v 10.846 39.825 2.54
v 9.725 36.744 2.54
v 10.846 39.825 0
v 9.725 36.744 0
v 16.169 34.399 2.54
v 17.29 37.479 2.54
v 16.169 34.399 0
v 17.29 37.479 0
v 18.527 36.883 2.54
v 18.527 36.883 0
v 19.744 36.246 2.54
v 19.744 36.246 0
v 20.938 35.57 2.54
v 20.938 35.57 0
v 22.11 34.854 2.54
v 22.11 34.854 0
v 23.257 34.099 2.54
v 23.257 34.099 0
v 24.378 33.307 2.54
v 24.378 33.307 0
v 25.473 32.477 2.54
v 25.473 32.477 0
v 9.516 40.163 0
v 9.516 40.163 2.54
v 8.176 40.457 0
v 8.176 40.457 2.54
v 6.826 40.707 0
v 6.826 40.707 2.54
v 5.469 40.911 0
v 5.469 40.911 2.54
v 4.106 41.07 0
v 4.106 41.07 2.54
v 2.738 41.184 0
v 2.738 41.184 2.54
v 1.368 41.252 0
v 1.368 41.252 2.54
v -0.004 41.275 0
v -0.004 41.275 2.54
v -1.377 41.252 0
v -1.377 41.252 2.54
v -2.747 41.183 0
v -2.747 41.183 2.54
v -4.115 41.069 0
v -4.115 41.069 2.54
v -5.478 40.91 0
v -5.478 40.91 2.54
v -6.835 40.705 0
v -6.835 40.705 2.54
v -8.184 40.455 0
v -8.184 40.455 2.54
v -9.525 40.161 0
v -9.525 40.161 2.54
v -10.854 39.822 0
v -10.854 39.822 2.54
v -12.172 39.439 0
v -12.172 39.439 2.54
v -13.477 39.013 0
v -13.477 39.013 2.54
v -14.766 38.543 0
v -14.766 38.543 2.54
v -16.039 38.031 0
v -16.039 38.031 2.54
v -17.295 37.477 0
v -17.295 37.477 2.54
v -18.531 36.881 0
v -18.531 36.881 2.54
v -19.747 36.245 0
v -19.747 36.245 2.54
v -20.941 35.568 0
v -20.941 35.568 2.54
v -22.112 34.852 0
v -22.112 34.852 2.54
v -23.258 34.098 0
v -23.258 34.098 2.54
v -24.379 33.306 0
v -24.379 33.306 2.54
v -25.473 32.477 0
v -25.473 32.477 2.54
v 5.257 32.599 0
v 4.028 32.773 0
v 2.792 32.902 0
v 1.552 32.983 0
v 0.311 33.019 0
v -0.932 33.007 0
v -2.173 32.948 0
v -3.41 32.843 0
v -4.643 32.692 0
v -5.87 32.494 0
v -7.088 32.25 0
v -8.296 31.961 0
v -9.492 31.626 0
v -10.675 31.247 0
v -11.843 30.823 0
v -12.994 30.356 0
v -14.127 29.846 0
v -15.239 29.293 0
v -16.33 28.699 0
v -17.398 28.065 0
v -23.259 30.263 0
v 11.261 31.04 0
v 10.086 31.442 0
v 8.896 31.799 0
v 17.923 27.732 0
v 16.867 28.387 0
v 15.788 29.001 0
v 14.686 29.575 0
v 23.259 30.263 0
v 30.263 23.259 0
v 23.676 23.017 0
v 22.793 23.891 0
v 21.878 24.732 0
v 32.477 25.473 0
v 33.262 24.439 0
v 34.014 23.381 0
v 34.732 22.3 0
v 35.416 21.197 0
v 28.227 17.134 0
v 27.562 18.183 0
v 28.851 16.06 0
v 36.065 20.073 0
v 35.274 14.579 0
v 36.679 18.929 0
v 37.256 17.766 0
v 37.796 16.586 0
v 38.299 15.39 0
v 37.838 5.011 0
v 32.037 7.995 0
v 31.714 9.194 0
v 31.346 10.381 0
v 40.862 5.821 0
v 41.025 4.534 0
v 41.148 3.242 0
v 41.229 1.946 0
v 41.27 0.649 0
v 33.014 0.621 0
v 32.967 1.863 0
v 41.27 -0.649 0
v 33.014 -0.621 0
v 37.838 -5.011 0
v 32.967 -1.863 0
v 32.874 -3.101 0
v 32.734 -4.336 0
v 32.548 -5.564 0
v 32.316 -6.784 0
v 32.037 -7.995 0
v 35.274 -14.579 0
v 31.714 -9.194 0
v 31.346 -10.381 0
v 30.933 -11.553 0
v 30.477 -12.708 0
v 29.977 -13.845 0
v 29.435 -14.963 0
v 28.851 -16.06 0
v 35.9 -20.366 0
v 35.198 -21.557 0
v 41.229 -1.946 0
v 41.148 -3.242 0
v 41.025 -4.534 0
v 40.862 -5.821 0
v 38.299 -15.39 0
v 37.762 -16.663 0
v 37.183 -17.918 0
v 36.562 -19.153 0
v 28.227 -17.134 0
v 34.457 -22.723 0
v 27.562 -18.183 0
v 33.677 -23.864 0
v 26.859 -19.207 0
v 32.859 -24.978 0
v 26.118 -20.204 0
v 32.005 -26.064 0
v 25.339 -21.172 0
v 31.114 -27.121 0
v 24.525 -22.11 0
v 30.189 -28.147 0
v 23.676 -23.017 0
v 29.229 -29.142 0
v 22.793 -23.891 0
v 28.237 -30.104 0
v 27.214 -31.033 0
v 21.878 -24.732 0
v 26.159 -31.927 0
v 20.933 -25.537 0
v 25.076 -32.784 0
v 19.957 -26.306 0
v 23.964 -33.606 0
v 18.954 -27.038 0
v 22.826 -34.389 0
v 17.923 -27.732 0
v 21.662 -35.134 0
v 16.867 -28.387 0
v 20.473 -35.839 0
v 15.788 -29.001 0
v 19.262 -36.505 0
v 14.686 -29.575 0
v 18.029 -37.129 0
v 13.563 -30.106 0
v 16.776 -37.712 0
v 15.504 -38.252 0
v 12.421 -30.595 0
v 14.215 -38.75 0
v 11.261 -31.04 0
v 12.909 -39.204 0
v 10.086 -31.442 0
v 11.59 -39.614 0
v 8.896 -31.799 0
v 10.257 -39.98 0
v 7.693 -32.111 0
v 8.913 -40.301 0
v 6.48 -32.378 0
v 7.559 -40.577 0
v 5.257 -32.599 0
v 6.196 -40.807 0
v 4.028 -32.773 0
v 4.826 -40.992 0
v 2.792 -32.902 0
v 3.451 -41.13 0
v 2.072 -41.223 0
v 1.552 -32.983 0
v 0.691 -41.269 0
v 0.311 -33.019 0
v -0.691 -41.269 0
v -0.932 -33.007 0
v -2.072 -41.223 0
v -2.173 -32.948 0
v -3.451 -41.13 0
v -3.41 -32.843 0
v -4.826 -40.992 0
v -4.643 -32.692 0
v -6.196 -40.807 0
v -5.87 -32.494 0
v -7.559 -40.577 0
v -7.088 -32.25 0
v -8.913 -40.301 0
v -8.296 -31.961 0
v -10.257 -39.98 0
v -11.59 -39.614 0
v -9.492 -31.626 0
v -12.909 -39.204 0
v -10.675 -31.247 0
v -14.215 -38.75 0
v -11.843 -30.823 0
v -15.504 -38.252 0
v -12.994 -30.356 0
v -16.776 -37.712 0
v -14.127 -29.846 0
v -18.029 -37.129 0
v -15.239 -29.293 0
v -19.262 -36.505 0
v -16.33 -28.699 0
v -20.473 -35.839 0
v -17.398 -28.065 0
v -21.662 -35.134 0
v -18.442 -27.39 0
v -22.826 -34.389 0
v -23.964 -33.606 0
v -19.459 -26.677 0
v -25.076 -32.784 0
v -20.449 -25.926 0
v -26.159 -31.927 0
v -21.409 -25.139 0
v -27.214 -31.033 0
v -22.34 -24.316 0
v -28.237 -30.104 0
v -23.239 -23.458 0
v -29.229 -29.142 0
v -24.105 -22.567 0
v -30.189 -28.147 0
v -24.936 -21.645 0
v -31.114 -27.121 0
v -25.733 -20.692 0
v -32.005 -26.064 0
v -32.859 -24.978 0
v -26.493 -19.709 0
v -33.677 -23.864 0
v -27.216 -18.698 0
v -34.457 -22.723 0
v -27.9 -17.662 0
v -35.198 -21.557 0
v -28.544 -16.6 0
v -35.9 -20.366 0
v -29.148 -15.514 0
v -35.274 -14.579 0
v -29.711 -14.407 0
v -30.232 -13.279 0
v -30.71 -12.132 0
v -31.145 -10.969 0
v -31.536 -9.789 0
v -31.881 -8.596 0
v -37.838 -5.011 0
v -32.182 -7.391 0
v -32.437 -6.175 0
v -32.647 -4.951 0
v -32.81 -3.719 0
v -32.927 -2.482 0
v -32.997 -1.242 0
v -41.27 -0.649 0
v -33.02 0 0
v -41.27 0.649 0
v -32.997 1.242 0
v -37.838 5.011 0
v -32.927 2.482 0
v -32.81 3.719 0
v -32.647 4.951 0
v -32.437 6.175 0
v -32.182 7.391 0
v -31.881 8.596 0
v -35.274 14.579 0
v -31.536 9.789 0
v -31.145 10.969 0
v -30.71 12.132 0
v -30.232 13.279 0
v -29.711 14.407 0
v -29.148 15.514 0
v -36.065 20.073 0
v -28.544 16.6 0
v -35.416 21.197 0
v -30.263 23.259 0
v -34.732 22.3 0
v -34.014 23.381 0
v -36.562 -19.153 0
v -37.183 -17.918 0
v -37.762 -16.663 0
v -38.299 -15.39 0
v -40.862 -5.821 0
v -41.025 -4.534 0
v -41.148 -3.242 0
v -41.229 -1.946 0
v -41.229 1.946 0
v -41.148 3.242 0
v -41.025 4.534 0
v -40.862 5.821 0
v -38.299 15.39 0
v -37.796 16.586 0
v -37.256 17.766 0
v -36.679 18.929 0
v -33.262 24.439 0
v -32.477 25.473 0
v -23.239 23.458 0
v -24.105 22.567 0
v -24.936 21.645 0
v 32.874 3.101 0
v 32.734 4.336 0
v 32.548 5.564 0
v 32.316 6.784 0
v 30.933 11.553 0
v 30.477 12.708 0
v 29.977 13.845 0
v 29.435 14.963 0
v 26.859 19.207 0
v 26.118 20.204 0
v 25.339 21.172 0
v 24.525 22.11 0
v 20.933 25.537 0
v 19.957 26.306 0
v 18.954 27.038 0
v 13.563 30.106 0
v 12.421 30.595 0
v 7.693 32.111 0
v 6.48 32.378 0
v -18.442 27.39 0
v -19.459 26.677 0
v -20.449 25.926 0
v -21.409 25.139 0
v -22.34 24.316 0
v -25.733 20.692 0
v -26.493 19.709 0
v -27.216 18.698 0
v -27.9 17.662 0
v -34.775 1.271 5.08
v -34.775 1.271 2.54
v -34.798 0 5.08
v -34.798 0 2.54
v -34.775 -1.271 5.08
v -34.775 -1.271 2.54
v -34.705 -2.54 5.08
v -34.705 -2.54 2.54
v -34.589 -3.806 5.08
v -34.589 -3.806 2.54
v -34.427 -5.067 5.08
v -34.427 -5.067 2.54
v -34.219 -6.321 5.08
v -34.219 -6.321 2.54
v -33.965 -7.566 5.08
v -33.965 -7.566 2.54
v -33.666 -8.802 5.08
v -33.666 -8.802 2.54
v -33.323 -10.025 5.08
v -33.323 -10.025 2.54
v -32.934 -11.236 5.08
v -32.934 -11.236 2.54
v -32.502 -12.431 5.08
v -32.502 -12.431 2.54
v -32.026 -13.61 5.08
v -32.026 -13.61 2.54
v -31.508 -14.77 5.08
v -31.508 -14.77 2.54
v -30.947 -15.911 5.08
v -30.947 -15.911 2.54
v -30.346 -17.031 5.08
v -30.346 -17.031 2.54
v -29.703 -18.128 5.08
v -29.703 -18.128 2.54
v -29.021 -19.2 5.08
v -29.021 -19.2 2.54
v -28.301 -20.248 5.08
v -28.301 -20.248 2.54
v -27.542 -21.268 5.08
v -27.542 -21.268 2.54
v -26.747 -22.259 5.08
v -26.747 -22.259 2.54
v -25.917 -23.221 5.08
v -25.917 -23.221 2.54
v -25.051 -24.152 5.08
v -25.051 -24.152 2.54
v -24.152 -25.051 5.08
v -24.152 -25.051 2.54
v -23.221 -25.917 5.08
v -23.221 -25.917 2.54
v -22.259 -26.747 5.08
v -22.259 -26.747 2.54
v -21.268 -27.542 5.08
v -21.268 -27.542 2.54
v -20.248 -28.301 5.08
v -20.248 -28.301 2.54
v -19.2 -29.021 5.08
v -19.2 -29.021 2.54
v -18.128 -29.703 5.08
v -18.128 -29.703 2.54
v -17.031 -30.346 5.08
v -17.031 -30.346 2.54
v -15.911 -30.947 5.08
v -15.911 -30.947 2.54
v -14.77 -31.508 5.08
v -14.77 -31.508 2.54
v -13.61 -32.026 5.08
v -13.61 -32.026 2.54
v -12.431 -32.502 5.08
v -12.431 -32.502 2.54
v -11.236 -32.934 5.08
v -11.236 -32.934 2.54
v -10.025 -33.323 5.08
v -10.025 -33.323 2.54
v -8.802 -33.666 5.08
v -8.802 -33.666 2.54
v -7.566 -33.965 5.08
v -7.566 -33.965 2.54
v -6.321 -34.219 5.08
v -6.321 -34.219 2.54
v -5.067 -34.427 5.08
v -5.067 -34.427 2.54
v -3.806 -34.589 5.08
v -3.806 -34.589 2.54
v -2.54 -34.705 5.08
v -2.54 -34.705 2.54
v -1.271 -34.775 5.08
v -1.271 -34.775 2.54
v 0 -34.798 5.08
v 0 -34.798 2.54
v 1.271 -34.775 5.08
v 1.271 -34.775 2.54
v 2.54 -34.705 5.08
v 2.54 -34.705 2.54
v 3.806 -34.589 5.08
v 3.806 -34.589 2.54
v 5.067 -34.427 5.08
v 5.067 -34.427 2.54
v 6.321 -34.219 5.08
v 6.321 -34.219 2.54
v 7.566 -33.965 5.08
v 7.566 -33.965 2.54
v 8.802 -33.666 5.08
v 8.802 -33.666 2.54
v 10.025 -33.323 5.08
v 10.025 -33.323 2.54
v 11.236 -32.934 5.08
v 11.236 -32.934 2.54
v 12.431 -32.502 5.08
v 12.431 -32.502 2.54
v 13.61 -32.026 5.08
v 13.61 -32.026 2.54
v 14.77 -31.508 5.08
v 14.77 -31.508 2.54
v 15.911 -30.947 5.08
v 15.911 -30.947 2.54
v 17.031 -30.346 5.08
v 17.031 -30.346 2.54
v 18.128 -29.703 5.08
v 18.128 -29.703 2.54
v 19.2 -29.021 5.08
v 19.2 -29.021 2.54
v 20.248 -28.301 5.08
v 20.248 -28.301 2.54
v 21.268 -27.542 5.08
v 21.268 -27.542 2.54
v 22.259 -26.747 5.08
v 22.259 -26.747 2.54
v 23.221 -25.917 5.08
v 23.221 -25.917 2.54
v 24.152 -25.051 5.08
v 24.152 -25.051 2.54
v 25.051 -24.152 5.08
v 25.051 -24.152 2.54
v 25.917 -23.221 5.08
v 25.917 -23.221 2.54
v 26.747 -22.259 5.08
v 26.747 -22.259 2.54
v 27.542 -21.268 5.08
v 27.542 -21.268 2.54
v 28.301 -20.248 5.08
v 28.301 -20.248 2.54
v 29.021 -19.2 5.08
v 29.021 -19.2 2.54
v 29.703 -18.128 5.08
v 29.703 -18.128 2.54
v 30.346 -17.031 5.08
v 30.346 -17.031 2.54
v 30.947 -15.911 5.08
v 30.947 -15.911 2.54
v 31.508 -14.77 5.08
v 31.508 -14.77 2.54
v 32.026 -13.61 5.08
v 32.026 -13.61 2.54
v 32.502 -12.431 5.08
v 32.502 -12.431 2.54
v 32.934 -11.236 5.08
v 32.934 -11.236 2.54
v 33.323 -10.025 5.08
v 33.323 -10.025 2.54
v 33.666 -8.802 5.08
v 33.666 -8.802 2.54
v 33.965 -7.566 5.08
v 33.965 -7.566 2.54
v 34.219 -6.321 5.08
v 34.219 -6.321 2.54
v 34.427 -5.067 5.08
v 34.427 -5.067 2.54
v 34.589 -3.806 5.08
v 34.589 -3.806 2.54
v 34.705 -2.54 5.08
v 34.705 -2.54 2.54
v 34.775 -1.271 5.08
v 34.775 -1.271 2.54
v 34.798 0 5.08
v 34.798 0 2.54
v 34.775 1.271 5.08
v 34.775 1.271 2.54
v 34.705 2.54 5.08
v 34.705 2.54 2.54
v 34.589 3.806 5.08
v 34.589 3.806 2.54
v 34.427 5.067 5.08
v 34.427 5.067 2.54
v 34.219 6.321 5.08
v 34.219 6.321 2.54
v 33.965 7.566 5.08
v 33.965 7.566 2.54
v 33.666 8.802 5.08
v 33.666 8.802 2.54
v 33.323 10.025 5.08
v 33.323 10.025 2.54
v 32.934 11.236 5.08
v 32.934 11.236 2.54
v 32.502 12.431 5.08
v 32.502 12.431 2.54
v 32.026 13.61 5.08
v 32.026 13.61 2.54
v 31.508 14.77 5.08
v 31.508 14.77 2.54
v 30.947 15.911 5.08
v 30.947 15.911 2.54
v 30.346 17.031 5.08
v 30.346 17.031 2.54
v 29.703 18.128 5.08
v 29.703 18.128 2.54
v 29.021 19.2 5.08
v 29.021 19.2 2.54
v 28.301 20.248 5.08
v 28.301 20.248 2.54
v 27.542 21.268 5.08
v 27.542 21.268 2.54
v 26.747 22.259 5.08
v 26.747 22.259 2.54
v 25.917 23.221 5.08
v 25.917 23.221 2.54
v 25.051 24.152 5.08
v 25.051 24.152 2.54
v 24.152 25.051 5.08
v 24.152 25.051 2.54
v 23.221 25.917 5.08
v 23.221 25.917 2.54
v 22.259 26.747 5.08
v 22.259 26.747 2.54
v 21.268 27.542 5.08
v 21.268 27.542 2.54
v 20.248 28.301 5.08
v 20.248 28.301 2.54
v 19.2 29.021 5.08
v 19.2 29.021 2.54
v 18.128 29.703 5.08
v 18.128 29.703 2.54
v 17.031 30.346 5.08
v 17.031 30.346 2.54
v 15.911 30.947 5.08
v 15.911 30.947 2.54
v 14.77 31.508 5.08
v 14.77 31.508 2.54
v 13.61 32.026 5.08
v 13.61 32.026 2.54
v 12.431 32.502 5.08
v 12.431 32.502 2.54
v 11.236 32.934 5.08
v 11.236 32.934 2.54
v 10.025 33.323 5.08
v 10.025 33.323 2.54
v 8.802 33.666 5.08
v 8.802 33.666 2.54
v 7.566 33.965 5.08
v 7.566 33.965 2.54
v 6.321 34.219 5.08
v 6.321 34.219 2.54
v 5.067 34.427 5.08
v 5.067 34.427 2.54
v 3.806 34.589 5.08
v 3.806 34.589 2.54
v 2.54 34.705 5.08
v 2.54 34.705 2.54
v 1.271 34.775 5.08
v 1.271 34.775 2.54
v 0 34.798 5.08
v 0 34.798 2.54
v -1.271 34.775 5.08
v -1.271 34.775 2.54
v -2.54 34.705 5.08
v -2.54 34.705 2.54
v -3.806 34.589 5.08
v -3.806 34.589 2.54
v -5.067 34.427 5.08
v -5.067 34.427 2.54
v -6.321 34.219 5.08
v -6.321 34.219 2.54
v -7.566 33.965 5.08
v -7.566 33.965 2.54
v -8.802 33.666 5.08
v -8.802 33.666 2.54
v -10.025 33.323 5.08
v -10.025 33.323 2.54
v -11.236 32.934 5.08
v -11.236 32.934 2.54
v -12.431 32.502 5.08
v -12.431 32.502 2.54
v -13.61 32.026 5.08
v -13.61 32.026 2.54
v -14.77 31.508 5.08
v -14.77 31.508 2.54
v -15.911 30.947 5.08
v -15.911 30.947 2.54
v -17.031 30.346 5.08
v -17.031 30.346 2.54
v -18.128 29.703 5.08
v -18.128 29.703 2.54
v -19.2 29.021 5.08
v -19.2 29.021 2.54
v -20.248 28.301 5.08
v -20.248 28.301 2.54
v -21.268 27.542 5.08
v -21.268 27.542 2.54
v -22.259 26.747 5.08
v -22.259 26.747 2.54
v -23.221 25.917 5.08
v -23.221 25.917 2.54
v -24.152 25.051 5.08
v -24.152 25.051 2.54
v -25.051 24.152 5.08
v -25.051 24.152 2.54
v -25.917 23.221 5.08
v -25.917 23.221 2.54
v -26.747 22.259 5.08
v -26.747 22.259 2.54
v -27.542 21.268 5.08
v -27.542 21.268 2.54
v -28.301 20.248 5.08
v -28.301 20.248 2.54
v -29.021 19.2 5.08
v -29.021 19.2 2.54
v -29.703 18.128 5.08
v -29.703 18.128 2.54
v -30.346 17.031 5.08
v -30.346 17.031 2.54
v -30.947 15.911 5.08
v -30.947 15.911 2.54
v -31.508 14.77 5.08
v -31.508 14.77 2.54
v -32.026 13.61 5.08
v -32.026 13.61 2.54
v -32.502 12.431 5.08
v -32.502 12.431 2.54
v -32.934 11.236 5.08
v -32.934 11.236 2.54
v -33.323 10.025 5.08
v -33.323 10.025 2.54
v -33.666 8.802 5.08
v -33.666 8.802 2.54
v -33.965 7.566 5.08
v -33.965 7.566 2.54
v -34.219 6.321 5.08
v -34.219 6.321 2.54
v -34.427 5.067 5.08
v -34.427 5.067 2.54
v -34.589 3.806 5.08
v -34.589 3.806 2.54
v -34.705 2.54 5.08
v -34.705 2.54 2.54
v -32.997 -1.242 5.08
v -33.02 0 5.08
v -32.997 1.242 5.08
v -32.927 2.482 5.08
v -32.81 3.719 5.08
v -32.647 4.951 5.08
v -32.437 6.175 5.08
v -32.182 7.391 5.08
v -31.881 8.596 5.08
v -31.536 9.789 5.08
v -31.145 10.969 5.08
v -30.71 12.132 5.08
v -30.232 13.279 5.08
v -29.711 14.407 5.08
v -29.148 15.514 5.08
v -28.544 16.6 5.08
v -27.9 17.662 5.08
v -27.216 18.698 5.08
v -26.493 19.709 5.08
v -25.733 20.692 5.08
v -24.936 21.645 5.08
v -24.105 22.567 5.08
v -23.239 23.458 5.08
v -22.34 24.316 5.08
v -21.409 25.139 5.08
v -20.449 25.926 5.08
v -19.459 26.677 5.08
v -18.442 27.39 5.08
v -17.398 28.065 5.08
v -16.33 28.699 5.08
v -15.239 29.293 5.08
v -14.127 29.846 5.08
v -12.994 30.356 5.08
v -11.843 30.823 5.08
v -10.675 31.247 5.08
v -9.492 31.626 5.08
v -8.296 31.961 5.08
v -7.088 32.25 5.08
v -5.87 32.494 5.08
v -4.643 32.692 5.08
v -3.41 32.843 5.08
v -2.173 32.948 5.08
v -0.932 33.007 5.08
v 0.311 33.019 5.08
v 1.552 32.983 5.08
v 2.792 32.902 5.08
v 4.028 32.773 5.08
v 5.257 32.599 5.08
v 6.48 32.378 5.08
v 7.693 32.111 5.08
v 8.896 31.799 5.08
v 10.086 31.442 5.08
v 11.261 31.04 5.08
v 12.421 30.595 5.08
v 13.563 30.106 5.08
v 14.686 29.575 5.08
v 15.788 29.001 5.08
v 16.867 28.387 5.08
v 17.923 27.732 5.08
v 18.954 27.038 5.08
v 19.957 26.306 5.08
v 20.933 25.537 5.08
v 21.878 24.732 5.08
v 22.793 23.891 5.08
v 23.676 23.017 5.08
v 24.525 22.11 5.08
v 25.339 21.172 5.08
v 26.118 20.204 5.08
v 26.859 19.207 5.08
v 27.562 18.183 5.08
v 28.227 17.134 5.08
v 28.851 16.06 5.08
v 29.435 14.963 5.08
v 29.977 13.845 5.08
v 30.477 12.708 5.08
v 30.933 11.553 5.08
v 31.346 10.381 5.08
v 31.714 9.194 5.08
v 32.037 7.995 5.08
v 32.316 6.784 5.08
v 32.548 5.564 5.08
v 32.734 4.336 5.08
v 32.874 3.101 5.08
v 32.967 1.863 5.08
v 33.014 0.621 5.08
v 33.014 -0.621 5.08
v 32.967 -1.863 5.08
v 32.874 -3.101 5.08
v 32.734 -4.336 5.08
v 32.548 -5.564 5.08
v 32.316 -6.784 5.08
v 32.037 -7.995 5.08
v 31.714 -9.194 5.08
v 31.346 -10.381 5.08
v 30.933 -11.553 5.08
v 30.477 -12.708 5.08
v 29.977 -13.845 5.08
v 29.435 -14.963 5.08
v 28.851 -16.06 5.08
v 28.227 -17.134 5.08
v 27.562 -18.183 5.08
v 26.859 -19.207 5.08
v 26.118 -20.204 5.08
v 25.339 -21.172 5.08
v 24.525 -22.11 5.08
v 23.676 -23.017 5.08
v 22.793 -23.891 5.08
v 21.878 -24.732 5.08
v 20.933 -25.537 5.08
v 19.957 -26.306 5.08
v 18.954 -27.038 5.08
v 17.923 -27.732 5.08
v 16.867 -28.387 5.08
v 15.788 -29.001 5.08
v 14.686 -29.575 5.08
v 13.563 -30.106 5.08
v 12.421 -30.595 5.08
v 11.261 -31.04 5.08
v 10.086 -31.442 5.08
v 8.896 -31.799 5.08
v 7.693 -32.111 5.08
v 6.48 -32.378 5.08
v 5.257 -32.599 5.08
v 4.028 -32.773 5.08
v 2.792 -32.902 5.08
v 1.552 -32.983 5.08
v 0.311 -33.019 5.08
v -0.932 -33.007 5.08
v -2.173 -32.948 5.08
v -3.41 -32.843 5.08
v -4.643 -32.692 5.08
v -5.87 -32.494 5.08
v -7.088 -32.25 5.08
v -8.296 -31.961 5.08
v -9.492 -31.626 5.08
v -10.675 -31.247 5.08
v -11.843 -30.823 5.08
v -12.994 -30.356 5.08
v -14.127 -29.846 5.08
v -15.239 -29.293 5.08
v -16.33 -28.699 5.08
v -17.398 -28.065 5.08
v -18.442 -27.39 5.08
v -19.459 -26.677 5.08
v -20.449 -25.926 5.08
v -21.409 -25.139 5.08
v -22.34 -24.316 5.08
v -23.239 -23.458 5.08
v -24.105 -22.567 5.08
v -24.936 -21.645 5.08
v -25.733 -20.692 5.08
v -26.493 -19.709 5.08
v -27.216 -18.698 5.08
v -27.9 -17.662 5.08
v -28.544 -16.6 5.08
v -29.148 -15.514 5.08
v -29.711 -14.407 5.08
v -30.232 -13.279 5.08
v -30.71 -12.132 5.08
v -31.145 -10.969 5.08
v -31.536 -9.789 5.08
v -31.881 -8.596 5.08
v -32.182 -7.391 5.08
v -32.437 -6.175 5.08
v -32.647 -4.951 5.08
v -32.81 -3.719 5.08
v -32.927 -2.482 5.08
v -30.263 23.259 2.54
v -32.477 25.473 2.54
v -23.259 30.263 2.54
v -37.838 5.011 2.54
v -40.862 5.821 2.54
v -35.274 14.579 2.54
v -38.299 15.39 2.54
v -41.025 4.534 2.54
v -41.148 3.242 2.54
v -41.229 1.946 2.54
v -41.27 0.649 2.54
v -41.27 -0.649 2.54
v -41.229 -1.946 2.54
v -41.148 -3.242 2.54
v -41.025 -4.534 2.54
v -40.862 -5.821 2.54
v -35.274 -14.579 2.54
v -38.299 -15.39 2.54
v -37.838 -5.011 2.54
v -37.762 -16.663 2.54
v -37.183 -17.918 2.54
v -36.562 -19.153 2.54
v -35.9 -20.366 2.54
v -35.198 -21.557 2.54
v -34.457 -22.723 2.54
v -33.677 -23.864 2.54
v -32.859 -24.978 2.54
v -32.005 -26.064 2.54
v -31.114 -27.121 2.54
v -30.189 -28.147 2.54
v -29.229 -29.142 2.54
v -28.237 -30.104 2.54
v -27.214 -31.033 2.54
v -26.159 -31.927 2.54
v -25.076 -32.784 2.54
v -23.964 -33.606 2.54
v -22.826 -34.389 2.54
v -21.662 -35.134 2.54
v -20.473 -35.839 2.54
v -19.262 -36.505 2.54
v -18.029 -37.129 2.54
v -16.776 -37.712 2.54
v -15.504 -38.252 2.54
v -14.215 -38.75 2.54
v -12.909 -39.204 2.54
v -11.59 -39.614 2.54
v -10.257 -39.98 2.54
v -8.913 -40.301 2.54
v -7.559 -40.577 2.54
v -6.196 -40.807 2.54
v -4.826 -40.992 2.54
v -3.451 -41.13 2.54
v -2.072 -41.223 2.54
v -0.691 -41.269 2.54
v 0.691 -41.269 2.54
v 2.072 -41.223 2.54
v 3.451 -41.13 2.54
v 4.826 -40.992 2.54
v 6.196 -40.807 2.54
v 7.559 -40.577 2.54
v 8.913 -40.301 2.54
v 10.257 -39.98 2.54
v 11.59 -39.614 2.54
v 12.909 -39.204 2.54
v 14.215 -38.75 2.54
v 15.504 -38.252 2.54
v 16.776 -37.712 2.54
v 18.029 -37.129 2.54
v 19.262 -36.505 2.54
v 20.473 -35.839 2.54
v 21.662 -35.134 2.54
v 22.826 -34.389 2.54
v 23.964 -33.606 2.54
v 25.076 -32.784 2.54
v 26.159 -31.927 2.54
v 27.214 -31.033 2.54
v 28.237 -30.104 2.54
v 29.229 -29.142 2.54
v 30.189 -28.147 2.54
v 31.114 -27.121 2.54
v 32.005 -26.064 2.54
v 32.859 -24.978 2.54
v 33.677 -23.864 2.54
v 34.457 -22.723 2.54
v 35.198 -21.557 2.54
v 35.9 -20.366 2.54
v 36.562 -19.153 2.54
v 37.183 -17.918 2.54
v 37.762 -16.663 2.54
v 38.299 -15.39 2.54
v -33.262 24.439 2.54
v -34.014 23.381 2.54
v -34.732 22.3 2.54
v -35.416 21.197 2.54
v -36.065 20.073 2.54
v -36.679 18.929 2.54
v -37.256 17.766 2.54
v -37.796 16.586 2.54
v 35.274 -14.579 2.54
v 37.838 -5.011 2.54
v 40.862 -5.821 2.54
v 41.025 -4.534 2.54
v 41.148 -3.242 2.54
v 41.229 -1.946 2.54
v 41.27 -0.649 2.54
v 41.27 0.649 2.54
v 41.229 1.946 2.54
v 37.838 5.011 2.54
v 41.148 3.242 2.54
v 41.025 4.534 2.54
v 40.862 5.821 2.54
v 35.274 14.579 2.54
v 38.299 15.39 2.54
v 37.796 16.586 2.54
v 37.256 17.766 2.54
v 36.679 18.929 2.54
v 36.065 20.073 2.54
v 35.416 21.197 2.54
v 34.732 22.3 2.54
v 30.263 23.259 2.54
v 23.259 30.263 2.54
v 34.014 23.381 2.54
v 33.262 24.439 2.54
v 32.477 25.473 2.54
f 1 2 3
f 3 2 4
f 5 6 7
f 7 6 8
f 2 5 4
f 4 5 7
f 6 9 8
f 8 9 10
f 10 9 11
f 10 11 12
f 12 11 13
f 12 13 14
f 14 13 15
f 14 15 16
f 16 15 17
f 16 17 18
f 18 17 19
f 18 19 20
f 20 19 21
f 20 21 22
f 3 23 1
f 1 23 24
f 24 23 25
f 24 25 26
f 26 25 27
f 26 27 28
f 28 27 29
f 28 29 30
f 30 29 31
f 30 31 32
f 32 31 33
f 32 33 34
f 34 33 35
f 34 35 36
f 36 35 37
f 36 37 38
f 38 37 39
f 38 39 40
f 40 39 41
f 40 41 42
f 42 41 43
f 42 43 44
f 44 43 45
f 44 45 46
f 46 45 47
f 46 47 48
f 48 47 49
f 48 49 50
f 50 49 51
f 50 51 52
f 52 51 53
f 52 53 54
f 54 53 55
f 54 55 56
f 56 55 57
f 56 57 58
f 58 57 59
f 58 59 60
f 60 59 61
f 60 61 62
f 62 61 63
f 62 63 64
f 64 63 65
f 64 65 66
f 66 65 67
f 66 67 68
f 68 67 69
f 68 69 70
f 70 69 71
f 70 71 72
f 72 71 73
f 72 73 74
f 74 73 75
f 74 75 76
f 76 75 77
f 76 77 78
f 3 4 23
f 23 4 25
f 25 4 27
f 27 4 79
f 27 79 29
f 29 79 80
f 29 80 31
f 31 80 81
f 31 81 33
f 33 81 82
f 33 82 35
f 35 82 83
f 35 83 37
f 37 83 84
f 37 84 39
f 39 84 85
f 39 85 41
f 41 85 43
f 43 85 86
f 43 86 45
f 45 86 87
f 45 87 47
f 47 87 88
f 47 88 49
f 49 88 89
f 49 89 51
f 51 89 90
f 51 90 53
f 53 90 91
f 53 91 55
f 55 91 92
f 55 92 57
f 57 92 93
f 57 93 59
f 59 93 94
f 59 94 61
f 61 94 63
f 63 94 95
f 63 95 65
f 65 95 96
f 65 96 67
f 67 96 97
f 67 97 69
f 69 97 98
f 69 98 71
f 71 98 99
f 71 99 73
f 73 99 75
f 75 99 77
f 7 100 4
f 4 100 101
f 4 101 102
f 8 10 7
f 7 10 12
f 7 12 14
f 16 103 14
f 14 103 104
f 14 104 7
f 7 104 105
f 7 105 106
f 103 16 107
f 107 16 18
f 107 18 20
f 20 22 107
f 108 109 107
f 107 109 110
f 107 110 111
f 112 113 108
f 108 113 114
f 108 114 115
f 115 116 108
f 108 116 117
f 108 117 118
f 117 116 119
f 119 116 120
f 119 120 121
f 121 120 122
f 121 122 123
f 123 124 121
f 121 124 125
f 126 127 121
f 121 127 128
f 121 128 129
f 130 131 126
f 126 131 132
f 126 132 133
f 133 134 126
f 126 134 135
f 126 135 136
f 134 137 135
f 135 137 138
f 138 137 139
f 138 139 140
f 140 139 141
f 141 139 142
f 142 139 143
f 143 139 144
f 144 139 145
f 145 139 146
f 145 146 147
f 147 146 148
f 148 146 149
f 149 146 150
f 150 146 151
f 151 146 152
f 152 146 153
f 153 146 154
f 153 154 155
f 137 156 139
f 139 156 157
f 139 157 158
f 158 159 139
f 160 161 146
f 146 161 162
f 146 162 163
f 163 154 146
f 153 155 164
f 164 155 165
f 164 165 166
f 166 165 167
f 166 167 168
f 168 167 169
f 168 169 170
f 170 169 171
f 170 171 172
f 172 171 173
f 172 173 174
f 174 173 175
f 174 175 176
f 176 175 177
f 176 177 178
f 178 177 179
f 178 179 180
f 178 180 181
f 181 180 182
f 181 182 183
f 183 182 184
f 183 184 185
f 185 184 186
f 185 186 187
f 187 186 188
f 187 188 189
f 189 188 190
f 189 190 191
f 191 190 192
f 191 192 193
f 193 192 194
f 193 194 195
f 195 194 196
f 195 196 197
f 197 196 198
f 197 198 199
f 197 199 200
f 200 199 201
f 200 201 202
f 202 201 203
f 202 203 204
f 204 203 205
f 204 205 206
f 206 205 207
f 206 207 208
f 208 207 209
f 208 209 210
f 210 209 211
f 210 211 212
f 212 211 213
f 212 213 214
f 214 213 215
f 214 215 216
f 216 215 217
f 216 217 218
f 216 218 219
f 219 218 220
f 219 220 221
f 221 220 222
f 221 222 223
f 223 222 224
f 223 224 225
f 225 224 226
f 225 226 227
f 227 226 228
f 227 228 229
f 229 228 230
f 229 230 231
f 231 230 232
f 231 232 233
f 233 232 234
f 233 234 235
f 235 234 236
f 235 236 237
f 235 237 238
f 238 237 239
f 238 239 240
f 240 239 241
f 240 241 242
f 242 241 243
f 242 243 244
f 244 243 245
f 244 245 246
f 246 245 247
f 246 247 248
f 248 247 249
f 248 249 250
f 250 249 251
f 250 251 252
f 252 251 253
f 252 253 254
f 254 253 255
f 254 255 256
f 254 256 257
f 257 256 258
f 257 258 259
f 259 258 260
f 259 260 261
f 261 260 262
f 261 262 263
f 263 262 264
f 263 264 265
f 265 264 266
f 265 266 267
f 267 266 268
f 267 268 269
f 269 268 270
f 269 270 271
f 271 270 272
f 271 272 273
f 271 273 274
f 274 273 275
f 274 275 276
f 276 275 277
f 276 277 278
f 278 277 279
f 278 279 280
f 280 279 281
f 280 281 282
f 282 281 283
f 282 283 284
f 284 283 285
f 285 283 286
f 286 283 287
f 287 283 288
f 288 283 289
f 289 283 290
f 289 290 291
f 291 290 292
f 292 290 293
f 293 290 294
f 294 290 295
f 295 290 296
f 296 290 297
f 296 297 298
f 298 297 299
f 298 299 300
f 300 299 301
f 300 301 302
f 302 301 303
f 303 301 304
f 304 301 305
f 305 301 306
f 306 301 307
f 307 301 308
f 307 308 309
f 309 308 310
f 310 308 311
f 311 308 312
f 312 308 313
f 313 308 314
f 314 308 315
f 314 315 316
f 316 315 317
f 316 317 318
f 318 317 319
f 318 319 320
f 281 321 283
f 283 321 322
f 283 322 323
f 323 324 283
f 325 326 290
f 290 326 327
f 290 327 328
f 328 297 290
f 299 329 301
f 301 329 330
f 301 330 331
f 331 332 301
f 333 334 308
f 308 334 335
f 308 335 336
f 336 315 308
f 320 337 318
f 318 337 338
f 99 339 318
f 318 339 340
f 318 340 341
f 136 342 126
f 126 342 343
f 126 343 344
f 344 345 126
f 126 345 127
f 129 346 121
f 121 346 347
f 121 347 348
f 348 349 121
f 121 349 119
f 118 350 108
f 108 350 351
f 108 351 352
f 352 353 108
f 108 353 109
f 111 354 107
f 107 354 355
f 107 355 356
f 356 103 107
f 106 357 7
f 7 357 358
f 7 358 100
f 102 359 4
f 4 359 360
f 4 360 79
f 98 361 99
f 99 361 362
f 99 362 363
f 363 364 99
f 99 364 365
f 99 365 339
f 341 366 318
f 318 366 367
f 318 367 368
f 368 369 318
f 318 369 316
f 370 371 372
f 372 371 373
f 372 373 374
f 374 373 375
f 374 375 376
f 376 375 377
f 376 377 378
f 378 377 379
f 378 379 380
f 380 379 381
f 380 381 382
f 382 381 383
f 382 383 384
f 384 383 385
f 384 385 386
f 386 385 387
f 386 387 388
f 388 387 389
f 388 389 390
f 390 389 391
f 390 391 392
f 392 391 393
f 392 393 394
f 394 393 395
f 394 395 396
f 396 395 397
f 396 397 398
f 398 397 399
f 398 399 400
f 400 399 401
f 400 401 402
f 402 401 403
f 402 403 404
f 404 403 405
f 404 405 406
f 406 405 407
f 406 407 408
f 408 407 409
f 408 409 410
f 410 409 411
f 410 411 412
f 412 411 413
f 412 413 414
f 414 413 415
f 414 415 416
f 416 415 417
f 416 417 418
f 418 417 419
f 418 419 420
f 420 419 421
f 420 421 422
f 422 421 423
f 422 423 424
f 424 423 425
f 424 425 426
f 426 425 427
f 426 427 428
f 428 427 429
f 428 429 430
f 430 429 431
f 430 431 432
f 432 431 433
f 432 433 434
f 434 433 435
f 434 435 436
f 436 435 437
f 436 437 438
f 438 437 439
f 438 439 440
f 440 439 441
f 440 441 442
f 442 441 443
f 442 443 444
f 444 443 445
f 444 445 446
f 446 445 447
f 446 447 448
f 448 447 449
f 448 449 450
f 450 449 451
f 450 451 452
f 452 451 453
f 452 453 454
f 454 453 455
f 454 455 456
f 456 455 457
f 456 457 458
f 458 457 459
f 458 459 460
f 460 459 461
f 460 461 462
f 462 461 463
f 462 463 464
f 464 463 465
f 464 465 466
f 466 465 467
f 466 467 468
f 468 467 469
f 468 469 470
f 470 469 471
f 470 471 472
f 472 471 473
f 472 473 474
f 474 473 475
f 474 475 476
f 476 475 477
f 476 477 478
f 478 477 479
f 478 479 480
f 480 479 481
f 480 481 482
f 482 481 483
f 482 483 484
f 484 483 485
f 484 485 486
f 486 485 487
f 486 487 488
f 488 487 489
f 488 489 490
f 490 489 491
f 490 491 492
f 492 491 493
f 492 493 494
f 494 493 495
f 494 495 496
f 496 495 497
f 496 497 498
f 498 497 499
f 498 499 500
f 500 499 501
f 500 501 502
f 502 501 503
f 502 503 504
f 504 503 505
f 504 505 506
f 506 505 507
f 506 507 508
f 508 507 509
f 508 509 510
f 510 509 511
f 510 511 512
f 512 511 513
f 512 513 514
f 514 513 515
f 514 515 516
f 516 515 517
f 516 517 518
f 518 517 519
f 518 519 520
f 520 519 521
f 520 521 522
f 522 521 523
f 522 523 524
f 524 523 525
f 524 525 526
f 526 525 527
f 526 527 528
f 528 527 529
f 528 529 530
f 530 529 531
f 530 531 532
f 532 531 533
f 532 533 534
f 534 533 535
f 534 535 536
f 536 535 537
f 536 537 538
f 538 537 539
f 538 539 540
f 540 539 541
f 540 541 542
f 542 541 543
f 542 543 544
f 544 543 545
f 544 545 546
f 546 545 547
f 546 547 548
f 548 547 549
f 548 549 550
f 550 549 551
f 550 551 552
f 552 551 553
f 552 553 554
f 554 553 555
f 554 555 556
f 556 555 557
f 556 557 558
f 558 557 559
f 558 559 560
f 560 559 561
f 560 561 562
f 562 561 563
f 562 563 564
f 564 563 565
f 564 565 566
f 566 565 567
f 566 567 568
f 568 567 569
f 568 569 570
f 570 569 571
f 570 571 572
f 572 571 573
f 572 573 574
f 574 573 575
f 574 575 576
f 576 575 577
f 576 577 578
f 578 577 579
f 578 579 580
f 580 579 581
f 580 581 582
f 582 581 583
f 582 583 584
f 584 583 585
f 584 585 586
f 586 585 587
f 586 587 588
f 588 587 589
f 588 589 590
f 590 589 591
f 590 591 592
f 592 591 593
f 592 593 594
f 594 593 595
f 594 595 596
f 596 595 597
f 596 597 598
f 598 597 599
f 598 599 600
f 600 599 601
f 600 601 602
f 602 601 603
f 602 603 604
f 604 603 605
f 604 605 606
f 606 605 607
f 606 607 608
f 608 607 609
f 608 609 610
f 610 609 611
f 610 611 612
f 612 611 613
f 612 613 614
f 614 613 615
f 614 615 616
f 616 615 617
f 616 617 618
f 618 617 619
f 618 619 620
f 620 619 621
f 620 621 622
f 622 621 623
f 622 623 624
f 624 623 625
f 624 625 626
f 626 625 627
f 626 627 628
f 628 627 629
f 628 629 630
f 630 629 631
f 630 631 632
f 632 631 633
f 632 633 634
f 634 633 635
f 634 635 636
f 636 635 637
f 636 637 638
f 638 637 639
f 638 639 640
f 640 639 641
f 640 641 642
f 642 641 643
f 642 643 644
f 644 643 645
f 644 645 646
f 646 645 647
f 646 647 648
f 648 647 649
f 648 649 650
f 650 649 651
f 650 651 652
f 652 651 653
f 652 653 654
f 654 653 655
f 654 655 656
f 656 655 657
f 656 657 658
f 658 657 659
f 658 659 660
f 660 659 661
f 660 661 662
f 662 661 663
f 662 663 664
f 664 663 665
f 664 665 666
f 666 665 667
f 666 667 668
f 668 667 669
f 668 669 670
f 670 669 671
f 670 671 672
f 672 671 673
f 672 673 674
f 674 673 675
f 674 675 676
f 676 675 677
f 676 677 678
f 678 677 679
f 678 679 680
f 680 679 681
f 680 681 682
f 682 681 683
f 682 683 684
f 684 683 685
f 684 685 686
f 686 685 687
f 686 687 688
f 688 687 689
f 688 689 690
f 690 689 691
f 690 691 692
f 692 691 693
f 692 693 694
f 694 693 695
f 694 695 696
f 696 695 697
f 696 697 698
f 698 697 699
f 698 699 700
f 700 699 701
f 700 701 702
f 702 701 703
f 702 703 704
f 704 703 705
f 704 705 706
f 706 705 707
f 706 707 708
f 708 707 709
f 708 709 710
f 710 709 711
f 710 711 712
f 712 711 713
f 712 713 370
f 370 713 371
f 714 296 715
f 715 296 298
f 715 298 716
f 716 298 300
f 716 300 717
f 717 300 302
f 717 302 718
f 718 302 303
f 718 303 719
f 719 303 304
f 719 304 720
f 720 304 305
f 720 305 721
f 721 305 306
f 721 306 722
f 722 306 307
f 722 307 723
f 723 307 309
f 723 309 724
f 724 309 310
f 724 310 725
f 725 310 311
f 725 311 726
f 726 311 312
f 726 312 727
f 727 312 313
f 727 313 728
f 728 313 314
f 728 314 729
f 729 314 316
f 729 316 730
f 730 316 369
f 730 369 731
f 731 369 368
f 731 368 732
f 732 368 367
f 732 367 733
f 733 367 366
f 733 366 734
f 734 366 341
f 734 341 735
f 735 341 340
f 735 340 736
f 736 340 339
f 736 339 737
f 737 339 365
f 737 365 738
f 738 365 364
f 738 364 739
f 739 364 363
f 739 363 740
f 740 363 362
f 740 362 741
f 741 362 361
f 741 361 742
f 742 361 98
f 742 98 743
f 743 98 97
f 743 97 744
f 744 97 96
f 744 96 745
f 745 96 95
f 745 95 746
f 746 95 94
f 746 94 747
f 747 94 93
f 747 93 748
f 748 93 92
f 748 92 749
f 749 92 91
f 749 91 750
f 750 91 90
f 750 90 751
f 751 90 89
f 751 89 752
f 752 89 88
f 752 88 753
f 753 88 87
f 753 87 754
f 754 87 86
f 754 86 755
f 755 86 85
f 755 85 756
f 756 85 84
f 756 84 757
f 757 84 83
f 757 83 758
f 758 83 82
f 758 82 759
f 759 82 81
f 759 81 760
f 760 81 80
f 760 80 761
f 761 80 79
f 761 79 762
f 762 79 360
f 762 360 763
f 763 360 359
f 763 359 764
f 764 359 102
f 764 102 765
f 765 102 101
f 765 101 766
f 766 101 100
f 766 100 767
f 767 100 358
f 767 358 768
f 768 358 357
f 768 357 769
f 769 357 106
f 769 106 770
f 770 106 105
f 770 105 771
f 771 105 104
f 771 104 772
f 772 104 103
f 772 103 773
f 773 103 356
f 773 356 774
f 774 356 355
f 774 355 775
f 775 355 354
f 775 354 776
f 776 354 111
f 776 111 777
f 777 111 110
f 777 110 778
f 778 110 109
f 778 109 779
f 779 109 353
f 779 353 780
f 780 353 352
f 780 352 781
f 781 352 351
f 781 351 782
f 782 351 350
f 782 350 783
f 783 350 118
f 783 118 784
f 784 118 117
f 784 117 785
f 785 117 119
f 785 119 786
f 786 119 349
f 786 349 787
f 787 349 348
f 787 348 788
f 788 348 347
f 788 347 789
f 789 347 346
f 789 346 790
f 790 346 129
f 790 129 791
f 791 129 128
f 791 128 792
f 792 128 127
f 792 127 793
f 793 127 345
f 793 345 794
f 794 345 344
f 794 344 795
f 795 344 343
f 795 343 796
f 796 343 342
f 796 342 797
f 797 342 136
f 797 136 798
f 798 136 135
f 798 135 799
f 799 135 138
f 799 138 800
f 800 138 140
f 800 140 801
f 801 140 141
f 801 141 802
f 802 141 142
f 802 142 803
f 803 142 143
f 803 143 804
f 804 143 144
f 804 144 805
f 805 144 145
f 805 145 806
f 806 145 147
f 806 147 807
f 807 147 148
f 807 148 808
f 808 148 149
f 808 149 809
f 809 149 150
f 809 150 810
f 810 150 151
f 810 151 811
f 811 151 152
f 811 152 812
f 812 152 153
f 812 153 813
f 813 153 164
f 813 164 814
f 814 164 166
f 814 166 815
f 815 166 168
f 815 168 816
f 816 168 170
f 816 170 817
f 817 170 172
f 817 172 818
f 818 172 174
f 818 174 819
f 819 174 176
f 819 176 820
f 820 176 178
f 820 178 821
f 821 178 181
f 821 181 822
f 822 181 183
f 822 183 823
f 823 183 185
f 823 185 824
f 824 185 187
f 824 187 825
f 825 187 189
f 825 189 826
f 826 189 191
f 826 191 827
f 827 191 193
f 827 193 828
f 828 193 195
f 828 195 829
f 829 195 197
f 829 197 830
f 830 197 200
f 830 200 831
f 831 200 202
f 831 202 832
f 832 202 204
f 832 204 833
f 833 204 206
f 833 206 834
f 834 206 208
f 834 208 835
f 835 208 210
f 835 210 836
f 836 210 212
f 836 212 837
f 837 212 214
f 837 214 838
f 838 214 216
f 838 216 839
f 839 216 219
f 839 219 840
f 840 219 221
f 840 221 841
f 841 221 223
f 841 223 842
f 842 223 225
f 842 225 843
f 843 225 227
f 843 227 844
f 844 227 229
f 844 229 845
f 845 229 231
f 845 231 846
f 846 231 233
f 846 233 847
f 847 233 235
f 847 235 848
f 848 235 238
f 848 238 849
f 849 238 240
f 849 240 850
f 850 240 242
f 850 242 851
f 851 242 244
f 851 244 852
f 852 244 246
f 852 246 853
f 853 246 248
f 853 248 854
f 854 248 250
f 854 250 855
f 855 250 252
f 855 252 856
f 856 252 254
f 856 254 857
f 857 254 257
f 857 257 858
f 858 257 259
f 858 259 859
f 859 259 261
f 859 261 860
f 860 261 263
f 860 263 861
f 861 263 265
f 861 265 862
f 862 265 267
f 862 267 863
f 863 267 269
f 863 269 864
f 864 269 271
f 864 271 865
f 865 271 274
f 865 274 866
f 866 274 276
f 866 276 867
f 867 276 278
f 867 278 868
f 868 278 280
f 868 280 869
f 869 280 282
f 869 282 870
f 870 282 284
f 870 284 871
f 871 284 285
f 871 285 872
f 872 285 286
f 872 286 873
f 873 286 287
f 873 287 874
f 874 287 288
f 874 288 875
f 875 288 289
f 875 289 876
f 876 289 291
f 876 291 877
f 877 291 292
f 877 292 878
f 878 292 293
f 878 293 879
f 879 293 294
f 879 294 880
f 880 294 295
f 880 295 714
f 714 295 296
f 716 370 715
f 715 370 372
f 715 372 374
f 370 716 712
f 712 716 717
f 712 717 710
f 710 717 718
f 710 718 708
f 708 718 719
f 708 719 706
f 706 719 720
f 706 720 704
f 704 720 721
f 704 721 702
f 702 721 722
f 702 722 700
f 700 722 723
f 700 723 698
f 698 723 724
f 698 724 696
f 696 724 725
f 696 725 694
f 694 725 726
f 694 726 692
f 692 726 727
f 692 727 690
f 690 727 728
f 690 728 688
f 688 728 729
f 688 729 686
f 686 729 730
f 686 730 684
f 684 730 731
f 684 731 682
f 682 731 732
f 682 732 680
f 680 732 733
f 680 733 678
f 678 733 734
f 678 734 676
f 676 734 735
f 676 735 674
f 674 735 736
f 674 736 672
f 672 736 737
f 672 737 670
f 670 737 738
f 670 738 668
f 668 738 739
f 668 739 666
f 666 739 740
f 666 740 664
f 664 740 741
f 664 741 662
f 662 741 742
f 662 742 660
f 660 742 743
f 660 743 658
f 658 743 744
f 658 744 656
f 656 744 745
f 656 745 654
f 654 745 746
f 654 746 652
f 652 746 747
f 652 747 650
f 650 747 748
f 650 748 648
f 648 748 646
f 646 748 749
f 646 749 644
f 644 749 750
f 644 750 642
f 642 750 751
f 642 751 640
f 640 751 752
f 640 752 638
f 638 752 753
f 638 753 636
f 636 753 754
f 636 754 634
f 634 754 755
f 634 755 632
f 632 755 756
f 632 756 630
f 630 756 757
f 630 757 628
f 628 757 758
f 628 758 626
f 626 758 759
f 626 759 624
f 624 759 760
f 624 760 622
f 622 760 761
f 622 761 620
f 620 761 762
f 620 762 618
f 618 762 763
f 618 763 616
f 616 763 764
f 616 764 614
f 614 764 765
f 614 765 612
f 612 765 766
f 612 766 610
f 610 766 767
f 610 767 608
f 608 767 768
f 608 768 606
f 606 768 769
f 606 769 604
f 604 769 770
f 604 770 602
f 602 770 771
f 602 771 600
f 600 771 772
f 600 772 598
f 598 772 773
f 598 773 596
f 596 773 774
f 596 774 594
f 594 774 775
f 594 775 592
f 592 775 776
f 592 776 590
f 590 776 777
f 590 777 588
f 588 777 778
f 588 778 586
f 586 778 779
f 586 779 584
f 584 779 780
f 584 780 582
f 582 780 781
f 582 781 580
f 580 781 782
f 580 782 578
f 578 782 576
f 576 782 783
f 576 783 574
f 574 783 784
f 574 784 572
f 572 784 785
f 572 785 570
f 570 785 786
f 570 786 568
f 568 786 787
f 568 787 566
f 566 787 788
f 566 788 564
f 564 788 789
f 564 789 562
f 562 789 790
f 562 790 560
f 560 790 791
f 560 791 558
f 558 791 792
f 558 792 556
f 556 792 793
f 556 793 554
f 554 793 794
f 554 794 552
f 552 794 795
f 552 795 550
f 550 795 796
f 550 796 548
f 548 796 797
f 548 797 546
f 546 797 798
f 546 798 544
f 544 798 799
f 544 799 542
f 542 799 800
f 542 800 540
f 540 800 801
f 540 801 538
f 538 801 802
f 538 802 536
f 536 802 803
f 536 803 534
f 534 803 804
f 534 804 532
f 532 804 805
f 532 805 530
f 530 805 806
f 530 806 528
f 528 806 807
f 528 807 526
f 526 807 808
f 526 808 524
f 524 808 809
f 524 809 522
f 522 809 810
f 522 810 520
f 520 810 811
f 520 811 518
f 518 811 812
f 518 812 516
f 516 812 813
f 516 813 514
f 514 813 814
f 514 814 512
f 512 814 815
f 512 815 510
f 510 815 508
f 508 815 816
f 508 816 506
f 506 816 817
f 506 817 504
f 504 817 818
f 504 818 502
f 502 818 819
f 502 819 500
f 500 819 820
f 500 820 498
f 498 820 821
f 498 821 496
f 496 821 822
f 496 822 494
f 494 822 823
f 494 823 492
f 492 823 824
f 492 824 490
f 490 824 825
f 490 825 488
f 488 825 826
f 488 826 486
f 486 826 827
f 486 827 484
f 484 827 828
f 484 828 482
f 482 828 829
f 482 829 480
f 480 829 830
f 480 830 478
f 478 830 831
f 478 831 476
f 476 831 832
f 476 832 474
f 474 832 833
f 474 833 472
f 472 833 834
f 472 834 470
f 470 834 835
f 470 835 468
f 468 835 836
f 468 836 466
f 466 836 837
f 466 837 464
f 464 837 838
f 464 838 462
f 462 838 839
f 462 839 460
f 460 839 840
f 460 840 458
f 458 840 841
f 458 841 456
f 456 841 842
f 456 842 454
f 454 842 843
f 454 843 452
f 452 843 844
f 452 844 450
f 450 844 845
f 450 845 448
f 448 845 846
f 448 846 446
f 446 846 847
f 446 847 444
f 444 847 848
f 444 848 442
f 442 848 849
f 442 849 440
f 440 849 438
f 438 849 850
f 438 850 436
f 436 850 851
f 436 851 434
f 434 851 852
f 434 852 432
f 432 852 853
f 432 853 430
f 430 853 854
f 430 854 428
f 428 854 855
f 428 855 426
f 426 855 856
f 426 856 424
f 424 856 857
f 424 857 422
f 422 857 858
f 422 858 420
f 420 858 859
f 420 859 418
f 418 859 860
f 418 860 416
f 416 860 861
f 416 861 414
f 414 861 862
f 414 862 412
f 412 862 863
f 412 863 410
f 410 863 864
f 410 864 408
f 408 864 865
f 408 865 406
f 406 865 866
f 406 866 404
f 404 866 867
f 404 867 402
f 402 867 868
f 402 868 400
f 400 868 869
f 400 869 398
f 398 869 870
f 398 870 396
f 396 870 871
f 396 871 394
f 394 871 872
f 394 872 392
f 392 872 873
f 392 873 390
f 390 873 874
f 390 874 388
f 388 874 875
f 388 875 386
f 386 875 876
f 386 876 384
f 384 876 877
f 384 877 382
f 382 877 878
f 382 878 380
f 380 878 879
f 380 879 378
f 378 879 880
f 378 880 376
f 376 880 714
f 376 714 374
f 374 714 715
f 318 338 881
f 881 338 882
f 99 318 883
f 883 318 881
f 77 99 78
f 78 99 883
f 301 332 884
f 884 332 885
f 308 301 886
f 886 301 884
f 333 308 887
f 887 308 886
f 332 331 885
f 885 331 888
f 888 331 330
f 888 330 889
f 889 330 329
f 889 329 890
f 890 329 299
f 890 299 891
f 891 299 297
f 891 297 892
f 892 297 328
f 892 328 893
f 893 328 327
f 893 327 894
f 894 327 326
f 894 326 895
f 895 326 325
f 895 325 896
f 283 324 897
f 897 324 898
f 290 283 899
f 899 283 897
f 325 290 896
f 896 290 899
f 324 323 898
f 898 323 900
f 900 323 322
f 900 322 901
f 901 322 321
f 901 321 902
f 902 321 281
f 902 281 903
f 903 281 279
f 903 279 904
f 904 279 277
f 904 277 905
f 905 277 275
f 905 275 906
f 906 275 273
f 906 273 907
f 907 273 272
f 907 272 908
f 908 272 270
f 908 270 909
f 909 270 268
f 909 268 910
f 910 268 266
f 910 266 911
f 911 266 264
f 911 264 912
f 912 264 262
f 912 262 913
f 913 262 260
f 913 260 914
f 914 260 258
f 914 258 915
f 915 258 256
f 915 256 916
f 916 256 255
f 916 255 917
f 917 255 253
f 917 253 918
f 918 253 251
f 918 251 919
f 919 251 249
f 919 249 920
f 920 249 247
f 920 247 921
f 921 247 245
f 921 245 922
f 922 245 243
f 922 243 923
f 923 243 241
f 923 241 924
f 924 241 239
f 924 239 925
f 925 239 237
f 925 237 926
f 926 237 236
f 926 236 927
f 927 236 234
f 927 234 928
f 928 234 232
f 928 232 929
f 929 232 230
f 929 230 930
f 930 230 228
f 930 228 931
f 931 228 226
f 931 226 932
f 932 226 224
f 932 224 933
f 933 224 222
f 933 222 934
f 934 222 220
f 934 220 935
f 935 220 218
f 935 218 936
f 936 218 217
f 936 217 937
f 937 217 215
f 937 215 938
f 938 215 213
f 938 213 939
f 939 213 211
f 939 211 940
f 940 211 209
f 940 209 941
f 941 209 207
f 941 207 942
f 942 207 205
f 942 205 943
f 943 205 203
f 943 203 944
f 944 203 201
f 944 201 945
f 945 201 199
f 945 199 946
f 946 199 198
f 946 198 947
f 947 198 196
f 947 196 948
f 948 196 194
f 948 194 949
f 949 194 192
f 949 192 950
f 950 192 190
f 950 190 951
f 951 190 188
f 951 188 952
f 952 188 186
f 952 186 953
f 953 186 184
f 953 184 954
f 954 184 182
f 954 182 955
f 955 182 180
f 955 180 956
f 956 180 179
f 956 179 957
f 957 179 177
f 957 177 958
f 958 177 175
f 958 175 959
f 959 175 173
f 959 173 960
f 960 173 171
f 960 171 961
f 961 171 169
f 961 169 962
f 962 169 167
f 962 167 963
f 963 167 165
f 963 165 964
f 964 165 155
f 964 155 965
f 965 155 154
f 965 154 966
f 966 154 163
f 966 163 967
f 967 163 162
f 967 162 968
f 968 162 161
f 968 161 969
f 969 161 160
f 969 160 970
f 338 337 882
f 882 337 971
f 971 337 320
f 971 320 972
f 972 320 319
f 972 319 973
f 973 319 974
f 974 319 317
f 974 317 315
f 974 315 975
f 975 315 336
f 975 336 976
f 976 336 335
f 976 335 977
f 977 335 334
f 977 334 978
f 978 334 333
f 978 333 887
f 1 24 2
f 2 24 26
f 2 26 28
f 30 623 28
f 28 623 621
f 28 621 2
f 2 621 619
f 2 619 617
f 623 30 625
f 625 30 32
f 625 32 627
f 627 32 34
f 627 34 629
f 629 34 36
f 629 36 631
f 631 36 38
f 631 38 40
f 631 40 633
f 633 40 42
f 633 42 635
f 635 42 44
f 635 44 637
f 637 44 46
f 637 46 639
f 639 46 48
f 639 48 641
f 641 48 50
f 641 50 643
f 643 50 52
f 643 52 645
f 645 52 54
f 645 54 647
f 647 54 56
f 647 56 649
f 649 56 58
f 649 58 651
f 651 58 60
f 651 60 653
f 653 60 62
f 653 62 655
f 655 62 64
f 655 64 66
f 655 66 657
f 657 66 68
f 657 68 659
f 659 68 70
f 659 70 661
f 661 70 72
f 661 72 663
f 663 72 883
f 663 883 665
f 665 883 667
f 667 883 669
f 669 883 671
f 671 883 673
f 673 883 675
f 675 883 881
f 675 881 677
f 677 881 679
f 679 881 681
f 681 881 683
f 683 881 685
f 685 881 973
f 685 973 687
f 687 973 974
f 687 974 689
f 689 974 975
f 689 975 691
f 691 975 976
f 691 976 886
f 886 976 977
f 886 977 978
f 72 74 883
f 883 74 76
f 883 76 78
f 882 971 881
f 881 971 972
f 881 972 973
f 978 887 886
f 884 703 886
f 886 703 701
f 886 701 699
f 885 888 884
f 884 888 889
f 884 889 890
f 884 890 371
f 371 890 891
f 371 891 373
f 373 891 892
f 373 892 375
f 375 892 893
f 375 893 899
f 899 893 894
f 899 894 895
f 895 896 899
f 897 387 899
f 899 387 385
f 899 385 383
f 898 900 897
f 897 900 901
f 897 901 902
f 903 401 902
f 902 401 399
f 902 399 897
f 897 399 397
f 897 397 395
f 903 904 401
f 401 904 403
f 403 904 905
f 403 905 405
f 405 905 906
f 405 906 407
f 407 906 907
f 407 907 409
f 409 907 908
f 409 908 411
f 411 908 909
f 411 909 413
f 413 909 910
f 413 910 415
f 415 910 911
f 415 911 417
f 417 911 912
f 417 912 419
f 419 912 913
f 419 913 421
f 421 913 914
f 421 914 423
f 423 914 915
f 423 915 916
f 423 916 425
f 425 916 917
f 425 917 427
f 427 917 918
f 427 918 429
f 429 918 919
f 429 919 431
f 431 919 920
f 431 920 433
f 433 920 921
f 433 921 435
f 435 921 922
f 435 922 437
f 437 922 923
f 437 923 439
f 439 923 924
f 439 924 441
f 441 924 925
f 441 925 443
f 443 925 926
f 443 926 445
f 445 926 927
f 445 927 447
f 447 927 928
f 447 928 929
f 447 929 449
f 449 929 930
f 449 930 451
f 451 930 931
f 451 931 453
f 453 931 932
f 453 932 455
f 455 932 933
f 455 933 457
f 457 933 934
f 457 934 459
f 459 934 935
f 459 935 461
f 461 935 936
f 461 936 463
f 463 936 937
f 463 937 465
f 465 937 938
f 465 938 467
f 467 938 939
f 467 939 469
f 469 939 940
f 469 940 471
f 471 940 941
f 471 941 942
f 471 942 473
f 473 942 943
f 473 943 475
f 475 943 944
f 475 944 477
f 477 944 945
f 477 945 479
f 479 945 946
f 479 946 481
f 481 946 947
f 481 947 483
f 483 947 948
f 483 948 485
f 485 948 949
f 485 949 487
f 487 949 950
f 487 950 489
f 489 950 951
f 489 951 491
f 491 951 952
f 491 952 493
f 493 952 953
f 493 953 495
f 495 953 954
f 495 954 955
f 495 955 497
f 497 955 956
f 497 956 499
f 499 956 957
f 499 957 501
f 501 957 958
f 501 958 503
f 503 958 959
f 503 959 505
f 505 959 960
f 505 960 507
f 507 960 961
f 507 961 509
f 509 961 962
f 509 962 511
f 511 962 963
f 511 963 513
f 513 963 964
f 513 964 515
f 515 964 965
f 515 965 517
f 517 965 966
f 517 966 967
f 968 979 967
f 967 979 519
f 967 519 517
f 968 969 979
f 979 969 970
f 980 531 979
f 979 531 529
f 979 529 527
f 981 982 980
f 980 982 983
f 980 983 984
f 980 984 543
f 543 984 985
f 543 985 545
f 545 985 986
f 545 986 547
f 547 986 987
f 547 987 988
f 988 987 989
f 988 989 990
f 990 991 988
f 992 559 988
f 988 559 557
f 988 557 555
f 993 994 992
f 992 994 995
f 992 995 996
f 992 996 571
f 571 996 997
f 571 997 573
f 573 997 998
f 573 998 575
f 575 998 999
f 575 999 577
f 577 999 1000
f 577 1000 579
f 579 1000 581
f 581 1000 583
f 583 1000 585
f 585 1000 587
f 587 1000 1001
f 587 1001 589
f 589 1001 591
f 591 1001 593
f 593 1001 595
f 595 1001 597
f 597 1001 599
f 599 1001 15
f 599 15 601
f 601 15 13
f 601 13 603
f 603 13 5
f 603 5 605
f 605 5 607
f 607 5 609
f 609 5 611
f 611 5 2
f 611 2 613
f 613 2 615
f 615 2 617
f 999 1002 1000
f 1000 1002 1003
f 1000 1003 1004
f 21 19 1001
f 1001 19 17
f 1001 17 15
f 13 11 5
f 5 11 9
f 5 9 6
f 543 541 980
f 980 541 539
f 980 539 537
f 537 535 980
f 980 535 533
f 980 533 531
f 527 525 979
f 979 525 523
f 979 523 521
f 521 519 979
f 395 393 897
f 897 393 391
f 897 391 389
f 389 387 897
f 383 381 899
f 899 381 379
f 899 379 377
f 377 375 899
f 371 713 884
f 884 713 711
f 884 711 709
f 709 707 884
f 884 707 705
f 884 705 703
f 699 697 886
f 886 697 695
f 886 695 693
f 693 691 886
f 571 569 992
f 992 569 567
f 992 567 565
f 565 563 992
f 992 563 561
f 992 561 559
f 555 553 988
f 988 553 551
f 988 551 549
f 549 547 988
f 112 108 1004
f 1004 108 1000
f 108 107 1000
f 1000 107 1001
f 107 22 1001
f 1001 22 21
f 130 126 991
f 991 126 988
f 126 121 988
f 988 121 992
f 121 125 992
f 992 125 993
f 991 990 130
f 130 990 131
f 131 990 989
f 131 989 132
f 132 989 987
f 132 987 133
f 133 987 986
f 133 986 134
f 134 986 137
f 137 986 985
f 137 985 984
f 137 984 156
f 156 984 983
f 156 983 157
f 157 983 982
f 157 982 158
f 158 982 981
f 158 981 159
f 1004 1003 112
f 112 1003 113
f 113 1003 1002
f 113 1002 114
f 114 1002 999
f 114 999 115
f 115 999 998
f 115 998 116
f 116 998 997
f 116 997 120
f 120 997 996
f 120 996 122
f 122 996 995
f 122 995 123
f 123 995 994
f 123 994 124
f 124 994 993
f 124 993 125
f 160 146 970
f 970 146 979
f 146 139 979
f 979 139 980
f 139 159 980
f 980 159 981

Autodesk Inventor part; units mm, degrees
ref_plane "YZ Plane" through (0, 0, 0) normal (1, 0, 0) x (0, 1, 0)
ref_plane "XZ Plane" through (0, 0, 0) normal (0, 1, 0) x (-1, 0, 0)
ref_plane "XY Plane" through (0, 0, 0) normal (0, 0, 1) x (1, 0, 0)
sketch "Sketch1" plane through (0, 0, 0) normal (0, 0, 1) x (1, 0, 0)
  circle A0 centre (0, 0) radius 34.798
  circle A1 centre (0, 0) radius 41.275
  line L0 (38.2986, -15.3898) -> (35.2745, -14.5795)
  line L1 (35.2745, -14.5795) -> (37.8384, -5.011)
  line L2 (37.8384, -5.011) -> (40.8624, -5.8213)
  line L3 (0, 0) -> (36.5564, -9.7953) construction
  line L4 (0, 0) -> (34.798, 0) construction
  line L5 (36.5564, -9.7953) -> (39.8686, -10.6828) construction
  dimension "d0" = 69.596
  dimension "d1" = 82.55
  dimension "d2" = 15
  dimension "d3" = 9.906
  dimension "d4" = 3.429
extrude "Extrusion1" add sketch "Sketch1" along normal blind 2.54
extrude "Extrusion2" cut sketch "Sketch1" along normal blind 2.54 contours L0 L1 L2 A1 picked at (37.7926, -9.5555)
pattern_circular "Circular Pattern1" count 3 over 60 about axis through (0, 0, 0) along (0, 0, 1) of "Extrusion2"
mirror "Mirror1" about plane through (0, 0, 0) normal (1, 0, 0) of "Extrusion2", "Circular Pattern1"
sketch "Sketch2" plane through (0, 0, 0) normal (0, 0, -1) x (-1, 0, 0)
  circle A0 centre (0, 0) radius 34.798 projected
  circle A1 centre (0, 0) radius 33.02
  dimension "d12" = 66.04
extrude "Extrusion3" add sketch "Sketch2" against normal blind 5.08
sketch "Sketch3" plane through (0, 0, 0) normal (0, 0, -1) x (-1, 0, 0)
  arc A0 (25.4726, 32.4772) -> (-25.4726, 32.4772) centre (0, 0) ccw projected
  line L0 (-17.2903, 37.4789) -> (-16.1691, 34.3986)
  line L1 (-16.1691, 34.3986) -> (-9.7247, 36.7442)
  line L2 (-9.7247, 36.7442) -> (-10.8459, 39.8245)
  line L3 (0, 0) -> (-12.9469, 35.5714) construction
  line L4 (-12.9469, 35.5714) -> (-13.8833, 38.8701) construction
  line L5 (0, 0) -> (13.6723, 0) construction
  dimension "d15" = 3.429
  dimension "d16" = 6.858
  dimension "d17" = 110
extrude "Extrusion4" cut sketch "Sketch3" against normal blind 5.08
properties part number "BallastTankMillOutline"
